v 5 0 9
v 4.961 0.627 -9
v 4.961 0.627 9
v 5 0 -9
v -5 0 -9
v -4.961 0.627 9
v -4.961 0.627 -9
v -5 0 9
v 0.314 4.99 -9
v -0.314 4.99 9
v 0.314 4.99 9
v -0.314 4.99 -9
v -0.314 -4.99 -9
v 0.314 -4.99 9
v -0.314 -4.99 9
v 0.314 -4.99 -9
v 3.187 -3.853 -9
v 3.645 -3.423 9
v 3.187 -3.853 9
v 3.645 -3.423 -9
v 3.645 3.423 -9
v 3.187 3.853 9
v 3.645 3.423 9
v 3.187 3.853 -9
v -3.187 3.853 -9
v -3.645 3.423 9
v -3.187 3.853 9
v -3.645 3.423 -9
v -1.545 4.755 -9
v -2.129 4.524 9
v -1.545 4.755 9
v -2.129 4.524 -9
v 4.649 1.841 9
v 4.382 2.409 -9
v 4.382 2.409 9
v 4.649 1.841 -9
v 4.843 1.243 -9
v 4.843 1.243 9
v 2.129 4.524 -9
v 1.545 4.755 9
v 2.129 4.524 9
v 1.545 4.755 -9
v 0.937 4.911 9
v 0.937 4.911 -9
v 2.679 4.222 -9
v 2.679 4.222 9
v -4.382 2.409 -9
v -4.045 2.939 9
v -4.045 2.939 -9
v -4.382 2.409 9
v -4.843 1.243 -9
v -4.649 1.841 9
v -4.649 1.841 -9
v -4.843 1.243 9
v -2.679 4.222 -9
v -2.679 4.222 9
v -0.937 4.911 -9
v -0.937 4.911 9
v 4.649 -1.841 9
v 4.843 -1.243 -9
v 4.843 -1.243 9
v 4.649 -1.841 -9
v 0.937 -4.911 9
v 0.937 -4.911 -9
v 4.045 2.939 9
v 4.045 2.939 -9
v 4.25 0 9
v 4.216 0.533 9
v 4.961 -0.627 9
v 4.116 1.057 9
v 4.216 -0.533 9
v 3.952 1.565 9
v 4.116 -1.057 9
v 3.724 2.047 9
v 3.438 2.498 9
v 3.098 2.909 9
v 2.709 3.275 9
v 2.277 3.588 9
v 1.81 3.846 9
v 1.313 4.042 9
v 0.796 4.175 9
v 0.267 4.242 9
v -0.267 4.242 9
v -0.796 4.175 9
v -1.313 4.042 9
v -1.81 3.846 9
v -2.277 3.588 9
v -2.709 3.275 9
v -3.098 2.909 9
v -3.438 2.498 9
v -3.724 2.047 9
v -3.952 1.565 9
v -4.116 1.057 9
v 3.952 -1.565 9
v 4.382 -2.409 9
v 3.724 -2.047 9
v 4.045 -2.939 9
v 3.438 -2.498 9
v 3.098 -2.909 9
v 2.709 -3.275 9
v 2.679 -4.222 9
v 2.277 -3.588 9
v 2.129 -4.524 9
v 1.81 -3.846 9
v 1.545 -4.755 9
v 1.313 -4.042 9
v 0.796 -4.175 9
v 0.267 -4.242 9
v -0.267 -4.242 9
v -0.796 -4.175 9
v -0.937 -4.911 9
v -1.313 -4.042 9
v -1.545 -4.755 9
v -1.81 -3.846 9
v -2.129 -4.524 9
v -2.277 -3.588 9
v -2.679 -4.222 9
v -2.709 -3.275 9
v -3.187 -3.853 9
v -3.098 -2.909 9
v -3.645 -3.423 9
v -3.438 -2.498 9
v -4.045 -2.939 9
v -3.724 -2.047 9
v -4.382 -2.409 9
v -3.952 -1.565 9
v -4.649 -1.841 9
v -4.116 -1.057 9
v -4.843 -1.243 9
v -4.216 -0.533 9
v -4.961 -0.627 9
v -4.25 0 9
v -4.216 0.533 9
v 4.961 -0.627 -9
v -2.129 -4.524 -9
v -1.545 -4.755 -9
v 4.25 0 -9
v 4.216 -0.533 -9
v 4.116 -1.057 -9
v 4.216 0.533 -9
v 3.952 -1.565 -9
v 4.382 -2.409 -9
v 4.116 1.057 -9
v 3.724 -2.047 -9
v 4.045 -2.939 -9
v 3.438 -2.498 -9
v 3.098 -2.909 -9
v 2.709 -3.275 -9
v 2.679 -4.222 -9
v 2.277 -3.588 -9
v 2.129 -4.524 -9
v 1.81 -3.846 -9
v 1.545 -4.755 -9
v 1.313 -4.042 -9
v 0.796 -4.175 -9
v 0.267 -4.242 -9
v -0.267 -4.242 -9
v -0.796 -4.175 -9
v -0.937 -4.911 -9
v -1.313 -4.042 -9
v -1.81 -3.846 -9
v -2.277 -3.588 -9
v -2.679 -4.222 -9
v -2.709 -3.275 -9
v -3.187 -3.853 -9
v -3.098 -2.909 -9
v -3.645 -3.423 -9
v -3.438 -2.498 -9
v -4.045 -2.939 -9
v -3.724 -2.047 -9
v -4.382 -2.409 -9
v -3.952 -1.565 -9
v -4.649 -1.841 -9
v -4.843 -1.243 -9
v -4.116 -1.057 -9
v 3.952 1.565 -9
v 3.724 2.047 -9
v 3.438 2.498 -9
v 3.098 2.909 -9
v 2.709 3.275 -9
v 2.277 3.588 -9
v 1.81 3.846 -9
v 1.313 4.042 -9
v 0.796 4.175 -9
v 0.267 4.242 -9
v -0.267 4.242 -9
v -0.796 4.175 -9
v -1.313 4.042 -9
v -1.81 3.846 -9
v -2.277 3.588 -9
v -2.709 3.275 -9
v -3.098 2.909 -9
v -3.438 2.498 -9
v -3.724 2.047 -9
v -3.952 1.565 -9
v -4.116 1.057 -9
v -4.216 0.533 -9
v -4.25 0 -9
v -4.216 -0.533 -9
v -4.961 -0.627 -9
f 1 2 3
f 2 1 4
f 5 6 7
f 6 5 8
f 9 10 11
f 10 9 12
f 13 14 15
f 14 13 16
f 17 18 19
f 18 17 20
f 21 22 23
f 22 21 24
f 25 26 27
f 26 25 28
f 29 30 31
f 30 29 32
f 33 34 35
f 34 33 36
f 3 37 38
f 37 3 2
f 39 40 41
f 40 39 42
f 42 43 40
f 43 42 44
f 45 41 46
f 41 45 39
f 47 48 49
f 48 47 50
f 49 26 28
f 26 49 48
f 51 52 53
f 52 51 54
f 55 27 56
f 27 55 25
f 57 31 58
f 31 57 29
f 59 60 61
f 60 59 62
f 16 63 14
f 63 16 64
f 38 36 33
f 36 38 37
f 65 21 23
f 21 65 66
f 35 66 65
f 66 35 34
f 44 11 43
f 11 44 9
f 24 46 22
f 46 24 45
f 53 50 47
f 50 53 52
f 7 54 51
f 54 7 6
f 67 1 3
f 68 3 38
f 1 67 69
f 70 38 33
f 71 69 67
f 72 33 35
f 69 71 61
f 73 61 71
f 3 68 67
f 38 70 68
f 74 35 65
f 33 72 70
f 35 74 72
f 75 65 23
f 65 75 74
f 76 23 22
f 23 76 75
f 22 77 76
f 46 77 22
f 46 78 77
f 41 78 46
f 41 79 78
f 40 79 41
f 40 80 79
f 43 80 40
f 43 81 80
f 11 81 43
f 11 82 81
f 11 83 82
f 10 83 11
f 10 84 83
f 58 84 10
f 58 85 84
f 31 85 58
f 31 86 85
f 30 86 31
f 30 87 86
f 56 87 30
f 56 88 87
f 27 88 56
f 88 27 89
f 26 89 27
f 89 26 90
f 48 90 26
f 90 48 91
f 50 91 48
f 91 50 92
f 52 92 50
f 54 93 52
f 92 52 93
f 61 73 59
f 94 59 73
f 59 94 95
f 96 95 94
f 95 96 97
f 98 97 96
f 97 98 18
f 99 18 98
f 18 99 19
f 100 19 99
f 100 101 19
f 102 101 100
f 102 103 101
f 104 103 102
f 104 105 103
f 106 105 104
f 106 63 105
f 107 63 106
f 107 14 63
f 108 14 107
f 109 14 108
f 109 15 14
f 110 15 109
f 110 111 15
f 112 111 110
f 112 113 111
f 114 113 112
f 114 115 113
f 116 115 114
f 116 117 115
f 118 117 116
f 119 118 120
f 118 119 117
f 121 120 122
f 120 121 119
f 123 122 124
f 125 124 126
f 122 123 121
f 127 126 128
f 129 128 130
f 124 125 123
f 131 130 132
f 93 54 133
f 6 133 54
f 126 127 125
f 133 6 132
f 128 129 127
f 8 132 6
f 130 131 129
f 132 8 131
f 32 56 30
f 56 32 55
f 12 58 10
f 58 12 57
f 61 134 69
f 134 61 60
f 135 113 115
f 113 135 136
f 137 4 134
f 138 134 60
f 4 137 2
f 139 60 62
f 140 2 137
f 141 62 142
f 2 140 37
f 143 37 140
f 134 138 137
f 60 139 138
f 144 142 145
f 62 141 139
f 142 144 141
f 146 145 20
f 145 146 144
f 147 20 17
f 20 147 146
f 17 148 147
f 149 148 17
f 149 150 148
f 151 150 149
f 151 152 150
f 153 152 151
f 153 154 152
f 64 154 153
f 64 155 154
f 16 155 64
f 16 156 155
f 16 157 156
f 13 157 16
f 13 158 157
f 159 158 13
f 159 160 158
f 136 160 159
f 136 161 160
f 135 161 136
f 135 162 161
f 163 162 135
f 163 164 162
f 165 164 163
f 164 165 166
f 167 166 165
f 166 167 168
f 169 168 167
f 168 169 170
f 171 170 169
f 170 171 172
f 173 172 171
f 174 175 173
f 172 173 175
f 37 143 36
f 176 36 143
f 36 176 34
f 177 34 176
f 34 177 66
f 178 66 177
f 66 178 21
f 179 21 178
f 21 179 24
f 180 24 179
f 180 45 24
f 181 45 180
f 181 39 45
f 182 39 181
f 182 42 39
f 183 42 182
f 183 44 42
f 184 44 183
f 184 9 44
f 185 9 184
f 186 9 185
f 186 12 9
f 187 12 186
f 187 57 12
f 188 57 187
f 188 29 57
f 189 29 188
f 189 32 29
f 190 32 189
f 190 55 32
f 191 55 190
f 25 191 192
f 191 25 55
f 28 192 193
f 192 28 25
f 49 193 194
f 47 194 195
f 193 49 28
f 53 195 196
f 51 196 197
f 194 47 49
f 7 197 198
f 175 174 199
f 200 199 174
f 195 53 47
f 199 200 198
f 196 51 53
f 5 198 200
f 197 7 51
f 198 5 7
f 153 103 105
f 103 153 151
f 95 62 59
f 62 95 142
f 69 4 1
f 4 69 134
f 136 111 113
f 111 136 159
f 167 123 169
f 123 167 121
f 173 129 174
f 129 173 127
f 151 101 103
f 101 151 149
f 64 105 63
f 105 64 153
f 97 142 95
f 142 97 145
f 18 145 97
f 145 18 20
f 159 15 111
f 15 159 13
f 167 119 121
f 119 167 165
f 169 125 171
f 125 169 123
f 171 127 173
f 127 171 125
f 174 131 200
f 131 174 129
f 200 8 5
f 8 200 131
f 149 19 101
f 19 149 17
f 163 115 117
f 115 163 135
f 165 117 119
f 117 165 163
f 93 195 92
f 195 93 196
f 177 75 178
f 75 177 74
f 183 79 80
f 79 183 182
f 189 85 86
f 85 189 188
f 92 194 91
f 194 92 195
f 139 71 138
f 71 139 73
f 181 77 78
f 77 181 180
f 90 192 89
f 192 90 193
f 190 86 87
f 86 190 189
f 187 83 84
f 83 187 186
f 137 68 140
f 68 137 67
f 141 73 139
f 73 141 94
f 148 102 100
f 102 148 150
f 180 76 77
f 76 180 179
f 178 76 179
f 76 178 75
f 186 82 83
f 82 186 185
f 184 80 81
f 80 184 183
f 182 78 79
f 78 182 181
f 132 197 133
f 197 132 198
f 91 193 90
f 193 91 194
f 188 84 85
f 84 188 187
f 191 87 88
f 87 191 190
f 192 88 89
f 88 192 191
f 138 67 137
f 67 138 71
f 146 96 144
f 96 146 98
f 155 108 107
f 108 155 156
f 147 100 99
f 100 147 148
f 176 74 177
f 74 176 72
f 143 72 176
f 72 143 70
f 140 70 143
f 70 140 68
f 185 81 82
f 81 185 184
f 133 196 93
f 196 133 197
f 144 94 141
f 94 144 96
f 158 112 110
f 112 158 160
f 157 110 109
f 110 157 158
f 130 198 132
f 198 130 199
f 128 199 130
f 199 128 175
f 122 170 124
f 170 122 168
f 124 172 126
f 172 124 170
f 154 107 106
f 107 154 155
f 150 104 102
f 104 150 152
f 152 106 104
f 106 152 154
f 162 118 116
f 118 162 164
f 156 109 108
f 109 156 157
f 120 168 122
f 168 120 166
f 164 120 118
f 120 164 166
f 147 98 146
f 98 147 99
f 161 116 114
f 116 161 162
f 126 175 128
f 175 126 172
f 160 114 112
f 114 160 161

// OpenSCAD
$fn = 50;


difference() {
	union() {
		translate(v = [0, 0, -9.0000000000]) {
			cylinder(h = 18, r = 5.0000000000);
		}
	}
	union() {
		translate(v = [0, 0, -100.0000000000]) {
			cylinder(h = 200, r = 4.2500000000);
		}
	}
}
